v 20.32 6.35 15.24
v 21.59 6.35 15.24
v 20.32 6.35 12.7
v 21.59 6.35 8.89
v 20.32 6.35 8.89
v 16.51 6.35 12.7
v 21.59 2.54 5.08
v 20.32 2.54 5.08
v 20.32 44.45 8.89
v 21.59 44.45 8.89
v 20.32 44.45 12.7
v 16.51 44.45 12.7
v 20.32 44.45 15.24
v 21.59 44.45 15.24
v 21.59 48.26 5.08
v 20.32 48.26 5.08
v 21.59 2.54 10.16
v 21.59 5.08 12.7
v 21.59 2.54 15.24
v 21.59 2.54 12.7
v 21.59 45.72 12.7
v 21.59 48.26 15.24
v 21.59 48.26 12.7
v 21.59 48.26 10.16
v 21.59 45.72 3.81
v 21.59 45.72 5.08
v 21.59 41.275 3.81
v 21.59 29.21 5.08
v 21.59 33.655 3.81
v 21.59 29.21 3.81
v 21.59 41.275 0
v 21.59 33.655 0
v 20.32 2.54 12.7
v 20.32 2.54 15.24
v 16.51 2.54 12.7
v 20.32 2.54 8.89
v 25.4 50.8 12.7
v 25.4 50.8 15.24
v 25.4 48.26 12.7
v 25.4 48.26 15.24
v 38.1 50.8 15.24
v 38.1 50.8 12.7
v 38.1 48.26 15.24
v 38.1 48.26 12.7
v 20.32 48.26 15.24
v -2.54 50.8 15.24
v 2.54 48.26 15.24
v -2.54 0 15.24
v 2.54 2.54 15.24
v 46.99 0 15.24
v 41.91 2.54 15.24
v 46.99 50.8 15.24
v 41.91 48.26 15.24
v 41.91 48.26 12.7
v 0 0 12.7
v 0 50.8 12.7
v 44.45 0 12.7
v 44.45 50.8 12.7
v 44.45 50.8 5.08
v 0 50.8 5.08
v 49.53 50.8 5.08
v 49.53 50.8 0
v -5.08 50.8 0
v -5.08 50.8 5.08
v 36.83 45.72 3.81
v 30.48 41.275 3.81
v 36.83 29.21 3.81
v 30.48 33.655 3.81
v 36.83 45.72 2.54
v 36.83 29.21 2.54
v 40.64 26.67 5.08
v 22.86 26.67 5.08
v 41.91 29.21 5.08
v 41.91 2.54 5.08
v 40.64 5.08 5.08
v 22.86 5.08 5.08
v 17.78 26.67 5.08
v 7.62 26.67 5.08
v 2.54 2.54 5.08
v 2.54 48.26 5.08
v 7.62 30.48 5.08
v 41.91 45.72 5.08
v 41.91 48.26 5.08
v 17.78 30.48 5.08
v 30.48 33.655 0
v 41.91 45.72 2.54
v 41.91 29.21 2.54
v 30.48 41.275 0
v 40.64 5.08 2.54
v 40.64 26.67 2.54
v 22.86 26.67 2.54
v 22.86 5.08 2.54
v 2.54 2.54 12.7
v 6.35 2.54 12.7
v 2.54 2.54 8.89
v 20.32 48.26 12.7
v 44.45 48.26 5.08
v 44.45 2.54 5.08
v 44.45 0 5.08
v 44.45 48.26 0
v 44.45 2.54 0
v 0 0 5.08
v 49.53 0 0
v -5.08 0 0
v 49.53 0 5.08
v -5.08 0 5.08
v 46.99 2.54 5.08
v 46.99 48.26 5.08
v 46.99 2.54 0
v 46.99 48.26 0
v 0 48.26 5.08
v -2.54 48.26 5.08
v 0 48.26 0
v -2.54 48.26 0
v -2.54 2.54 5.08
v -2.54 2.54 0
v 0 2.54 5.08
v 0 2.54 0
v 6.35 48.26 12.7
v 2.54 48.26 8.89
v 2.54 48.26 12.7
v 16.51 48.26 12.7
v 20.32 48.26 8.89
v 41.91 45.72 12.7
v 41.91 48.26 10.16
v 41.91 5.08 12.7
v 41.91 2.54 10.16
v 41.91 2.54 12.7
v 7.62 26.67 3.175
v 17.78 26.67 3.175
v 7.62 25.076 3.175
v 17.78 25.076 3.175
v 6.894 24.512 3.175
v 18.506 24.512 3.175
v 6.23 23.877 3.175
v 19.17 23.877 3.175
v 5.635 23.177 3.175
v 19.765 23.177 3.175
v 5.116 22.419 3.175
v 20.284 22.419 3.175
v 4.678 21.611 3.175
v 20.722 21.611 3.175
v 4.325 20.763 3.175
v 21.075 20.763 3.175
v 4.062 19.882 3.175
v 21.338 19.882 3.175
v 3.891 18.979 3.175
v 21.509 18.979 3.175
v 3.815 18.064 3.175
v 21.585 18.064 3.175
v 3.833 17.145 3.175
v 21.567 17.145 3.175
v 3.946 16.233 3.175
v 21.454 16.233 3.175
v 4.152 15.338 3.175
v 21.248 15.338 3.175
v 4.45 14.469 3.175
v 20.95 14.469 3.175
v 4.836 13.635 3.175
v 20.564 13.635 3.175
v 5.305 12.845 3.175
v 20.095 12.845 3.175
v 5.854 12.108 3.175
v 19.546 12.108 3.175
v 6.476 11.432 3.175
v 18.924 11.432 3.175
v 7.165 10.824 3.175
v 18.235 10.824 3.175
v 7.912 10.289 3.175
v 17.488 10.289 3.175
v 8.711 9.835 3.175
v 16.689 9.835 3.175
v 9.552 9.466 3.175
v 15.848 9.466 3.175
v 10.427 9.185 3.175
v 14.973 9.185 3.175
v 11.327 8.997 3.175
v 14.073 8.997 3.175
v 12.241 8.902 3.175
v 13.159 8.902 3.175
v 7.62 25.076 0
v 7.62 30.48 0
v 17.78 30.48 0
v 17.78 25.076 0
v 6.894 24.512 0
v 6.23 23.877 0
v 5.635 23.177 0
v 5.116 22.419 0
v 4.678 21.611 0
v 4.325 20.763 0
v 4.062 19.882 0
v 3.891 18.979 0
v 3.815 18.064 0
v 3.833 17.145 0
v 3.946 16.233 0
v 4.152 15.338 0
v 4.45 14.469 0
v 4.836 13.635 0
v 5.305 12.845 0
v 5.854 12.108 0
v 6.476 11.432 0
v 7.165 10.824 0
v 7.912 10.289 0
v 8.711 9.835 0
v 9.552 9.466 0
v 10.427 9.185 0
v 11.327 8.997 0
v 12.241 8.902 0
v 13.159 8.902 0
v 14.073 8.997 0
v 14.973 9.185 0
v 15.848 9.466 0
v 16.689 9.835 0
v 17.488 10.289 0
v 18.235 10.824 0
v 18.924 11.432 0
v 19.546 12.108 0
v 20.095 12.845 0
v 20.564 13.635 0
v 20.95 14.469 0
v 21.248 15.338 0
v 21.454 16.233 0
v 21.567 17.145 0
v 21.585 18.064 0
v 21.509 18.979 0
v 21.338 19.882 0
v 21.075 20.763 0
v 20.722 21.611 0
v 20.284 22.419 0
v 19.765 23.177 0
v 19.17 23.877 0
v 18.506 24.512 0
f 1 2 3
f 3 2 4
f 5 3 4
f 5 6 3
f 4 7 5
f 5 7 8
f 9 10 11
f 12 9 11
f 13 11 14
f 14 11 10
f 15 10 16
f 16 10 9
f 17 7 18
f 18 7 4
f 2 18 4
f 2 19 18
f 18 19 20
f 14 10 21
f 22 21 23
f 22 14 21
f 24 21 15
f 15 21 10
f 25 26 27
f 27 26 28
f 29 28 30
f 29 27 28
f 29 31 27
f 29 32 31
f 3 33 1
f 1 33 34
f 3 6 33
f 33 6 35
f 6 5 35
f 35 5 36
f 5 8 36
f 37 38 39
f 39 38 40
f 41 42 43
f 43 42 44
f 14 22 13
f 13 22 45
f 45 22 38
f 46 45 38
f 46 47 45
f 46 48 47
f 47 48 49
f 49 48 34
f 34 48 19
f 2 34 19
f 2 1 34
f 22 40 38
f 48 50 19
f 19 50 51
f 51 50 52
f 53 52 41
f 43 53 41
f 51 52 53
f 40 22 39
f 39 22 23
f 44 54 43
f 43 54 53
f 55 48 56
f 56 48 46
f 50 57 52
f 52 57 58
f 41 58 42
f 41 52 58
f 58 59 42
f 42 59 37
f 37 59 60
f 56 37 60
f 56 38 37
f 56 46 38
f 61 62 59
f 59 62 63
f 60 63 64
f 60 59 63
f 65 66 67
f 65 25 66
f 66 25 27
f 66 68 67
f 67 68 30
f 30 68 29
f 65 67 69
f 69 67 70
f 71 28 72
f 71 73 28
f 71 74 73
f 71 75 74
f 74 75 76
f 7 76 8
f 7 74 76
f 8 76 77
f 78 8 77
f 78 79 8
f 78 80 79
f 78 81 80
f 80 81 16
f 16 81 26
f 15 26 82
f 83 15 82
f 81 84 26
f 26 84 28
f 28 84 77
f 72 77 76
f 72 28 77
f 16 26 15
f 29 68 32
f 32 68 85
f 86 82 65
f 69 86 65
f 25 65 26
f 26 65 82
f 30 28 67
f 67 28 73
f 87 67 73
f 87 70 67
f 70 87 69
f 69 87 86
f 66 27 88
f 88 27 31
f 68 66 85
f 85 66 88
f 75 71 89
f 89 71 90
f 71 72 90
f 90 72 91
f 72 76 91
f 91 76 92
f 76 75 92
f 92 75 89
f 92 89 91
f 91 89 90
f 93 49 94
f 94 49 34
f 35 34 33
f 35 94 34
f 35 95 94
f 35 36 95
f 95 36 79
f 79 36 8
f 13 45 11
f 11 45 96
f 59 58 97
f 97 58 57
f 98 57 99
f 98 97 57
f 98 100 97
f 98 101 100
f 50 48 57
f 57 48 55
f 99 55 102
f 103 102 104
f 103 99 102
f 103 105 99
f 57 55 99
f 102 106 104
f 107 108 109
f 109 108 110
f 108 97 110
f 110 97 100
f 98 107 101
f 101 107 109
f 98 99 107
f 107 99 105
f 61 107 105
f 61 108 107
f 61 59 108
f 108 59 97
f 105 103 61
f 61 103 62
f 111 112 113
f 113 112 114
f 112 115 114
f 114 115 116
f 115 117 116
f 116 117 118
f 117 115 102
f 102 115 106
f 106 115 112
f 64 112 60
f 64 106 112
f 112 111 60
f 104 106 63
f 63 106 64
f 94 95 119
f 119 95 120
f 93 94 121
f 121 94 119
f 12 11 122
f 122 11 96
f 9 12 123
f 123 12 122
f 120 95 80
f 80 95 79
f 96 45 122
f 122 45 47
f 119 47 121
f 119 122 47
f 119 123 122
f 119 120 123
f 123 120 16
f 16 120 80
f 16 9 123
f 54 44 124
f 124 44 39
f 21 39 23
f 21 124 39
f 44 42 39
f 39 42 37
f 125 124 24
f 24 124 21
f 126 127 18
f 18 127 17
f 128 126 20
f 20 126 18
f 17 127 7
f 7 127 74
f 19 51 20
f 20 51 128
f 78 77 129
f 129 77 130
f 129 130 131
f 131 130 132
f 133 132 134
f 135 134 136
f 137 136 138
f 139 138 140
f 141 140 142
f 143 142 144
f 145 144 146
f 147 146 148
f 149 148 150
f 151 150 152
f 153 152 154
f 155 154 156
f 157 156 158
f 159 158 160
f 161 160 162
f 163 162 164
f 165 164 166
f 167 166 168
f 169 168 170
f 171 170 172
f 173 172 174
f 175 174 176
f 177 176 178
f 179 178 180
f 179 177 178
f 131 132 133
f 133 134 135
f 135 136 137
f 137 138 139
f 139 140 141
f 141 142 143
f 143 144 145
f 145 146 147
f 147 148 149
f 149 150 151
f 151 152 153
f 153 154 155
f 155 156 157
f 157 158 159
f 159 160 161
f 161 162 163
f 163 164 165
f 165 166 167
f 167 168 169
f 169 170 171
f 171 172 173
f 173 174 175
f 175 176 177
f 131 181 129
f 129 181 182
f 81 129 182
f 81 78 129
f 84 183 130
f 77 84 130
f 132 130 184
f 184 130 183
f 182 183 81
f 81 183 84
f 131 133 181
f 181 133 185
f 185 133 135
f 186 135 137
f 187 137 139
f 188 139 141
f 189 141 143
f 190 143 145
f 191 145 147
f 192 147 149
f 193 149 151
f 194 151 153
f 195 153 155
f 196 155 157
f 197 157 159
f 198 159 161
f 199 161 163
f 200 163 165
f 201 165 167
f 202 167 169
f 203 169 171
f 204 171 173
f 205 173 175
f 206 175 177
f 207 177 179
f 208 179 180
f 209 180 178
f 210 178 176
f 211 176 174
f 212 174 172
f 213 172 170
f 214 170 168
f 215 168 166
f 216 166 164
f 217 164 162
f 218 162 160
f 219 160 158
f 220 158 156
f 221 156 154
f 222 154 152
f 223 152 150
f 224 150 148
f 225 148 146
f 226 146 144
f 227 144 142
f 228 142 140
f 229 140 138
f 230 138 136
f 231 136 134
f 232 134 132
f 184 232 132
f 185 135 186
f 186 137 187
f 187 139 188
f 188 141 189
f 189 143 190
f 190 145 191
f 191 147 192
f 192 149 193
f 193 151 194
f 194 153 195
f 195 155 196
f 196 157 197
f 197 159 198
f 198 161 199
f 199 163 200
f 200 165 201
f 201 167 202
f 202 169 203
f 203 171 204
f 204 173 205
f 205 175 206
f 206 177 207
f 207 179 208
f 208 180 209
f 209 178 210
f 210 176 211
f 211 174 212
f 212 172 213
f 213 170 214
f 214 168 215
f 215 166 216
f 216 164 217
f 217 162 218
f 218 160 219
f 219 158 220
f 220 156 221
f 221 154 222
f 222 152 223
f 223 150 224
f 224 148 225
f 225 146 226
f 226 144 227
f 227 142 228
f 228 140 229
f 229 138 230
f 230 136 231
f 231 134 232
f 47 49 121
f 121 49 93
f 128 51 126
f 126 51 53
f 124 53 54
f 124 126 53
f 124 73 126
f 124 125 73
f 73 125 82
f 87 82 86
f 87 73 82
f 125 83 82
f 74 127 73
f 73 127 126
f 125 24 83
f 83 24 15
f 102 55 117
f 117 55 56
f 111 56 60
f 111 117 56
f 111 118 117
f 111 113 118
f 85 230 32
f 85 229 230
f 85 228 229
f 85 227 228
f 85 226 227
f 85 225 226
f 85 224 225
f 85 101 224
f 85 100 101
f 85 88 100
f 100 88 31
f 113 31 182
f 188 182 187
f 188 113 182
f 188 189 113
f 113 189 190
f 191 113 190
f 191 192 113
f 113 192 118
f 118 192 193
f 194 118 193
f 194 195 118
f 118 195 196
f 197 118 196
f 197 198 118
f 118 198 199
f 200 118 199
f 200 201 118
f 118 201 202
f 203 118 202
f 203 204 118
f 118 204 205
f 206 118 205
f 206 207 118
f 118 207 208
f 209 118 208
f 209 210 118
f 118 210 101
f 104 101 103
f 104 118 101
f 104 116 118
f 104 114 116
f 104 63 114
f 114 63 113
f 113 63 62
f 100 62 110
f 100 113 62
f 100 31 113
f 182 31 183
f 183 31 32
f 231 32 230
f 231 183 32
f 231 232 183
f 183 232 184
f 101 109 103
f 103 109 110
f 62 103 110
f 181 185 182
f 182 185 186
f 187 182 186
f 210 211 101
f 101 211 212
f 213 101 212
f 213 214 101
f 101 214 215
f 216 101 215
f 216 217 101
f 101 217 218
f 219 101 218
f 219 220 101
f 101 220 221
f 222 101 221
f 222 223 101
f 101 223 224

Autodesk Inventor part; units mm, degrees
ref_plane "YZ Plane" through (0, 0, 0) normal (1, 0, 0) x (0, 1, 0)
ref_plane "XZ Plane" through (0, 0, 0) normal (0, 1, 0) x (-1, 0, 0)
ref_plane "XY Plane" through (0, 0, 0) normal (0, 0, 1) x (1, 0, 0)
sketch "Sketch2" plane through (0, 0, 0) normal (0, 0, 1) x (1, 0, 0)
  line L0 (0, 0) -> (44.45, 0)
  line L1 (44.45, 0) -> (44.45, 50.8)
  line L2 (44.45, 50.8) -> (0, 50.8)
  line L3 (0, 50.8) -> (0, 0)
  dimension "d0" = 50.8
  dimension "d1" = 44.45
extrude "Extrusion1" add sketch "Sketch2" along normal blind 25.4
sketch "Sketch3" plane through (0, 0, 25.4) normal (0, 0, 1) x (1, 0, 0)
  line L0 (2.54, 2.54) -> (20.32, 2.54)
  line L1 (20.32, 2.54) -> (20.32, 48.26)
  line L2 (20.32, 48.26) -> (2.54, 48.26)
  line L3 (2.54, 48.26) -> (2.54, 2.54)
  line L4 (0, 0) -> (44.45, 0) projected
  line L5 (0, 50.8) -> (0, 0) projected
  line L6 (44.45, 50.8) -> (0, 50.8) projected
  line L7 (21.59, 2.54) -> (41.91, 2.54)
  line L8 (41.91, 2.54) -> (41.91, 48.26)
  line L9 (41.91, 48.26) -> (21.59, 48.26)
  line L10 (21.59, 48.26) -> (21.59, 2.54)
  line L11 (44.45, 0) -> (44.45, 50.8) projected
  dimension "d4" = 2.54
  dimension "d5" = 2.54
  dimension "d6" = 2.54
  dimension "d7" = 20.32
  dimension "d8" = 2.54
  dimension "d9" = 2.54
  dimension "d10" = 2.54
  dimension "d11" = 22.86
extrude "Extrusion2" cut sketch "Sketch3" against normal blind 20.32 contours L3 L2 L1 L0 | L10 L9 L8 L7
sketch "Sketch4" plane through (0, 0, 0) normal (0, 0, -1) x (-1, 0, 0)
  circle A0 centre (-12.7, 17.78) radius 8.89
  line L0 (0, 50.8) -> (0, 0) projected
  line L1 (0, 0) -> (-44.45, 0) projected
  dimension "d14" = 17.78
  dimension "d17" = 12.7
  dimension "d18" = 17.78
extrude "Extrusion3" cut sketch "Sketch4" against normal blind 3.175
sketch "Sketch5" plane through (0, 0, 0) normal (0, 0, -1) x (-1, 0, 0)
  point P0 (0, 0)
sketch "Sketch6" plane through (12.7, 17.78, 3.175) normal (0, 0, -1) x (-1, 0, 0)
  circle A0 centre (0, 0) radius 8.89 projected
  line L0 (0, 0) -> (-5.08, 0)
  line L1 (-5.08, 0) -> (-5.08, 12.7)
  line L2 (-5.08, 12.7) -> (0, 12.7)
  line L3 (0, 12.7) -> (0, 0)
  line L4 (0, 0) -> (5.08, 0)
  line L5 (5.08, 0) -> (5.08, 12.7)
  line L6 (5.08, 12.7) -> (0, 12.7)
  line L7 (0, 12.7) -> (0, 0)
  point P0 (12.7, -17.78)
  dimension "d21" = 12.7
  dimension "d22" = 5.08
  dimension "d23" = 5.08
extrude "Extrusion4" cut sketch "Sketch6" along normal blind 5.08 contours L5 L4 L3 A0 | A0 L3 L6 L5 | L1 L2 L3 A0 | A0 L3 L0 L1
sketch "Sketch7" plane through (0, 0, 3.175) normal (0, 0, -1) x (-1, 0, 0)
  point P0 (0, 0)
sketch "Sketch8" plane through (0, 0, 3.175) normal (0, 0, -1) x (-1, 0, 0)
  line L0 (-7.62, 25.0756) -> (-7.62, 30.48) projected
  line L1 (-17.78, 30.48) -> (-7.62, 30.48)
  line L2 (-7.62, 30.48) -> (-7.62, 26.67)
  line L3 (-7.62, 26.67) -> (-17.78, 26.67)
  line L4 (-17.78, 26.67) -> (-17.78, 30.48)
  point P0 (0, 0)
  dimension "d26" = 3.81
extrude "Extrusion5" cut sketch "Sketch8" against normal blind 2.54
sketch "Sketch14" plane through (41.91, 2.54, 25.4) normal (-1, 0, 0) x (0, 0, 1)
  line L0 (0, 0) -> (-20.32, 0) projected
  line L1 (0, 45.72) -> (-20.32, 45.72) projected
  line L2 (-12.7, 45.72) -> (-12.7, 43.18)
  line L3 (-12.7, 43.18) -> (-15.24, 45.72)
  line L4 (-12.7, 0) -> (-12.7, 2.54)
  line L5 (-12.7, 2.54) -> (-15.24, 0)
  point P0 (-25.4, -2.54)
  dimension "d52" = 45
  dimension "d53" = 2.54
  dimension "d54" = 2.54
  dimension "d55" = 45
  dimension "d56" = 5.08
  dimension "d57" = 5.08
extrude "Arduino Holder" add sketch "Sketch14" along normal blind 20.32
sketch "Sketch16" plane through (2.54, 2.54, 25.4) normal (0, 1, 0) x (1, 0, 0)
  line L0 (0, 12.7) -> (3.81, 12.7)
  line L1 (3.81, 12.7) -> (0, 16.51)
  line L2 (0, 0) -> (0, 20.32) projected
  line L3 (17.78, 5.08) -> (17.78, 20.32)
  line L4 (17.78, 16.51) -> (13.97, 12.7)
  line L5 (13.97, 12.7) -> (17.78, 12.7)
  line L6 (17.78, 20.32) -> (0, 20.32) projected
  point P0 (-2.54, 25.4)
  dimension "d60" = 45
  dimension "d61" = 3.81
  dimension "d62" = 3.81
  dimension "d64" = 45
  dimension "d144" = 7.62
  dimension "d145" = 7.62
extrude "Bluetooth Holder" add sketch "Sketch16" along normal blind 45.72
sketch "Sketch17" plane through (0, 0, 0) normal (-1, 0, 0) x (0, 0, 1)
  line L0 (0, 50.8) -> (25.4, 50.8) projected
  line L1 (0, 0) -> (5.08, 0)
  line L2 (5.08, 0) -> (5.08, 50.8)
  line L3 (5.08, 50.8) -> (0, 50.8)
  line L4 (0, 50.8) -> (0, 0)
  dimension "d68" = 5.08
extrude "Extrusion13" add sketch "Sketch17" along normal blind 5.08
sketch "Sketch18" plane through (0, 0, 5.08) normal (0, 0, 1) x (1, 0, 0)
  line L0 (0, 50.8) -> (0, 0) projected
  line L1 (0, 2.54) -> (-2.54, 2.54)
  line L2 (-2.54, 2.54) -> (-2.54, 48.26)
  line L3 (-2.54, 48.26) -> (0, 48.26)
  line L4 (0, 48.26) -> (0, 2.54)
  line L5 (0, 50.8) -> (-5.08, 50.8) projected
  line L6 (0, 0) -> (-5.08, 0) projected
  dimension "d71" = 2.54
  dimension "d72" = 2.54
  dimension "d73" = 2.54
extrude "Extrusion14" cut sketch "Sketch18" against normal blind 5.08
sketch "Sketch19" plane through (44.45, 0, 0) normal (1, 0, 0) x (0, 0, -1)
  line L0 (0, 50.8) -> (-25.4, 50.8) projected
  line L1 (0, 0) -> (-5.08, 0)
  line L2 (-5.08, 0) -> (-5.08, 50.8)
  line L3 (-5.08, 50.8) -> (0, 50.8)
  line L4 (0, 50.8) -> (0, 0)
  dimension "d76" = 5.08
extrude "Extrusion15" add sketch "Sketch19" along normal blind 5.08
sketch "Sketch21" plane through (44.45, 0, 5.08) normal (0, 0, 1) x (1, 0, 0)
  line L0 (0, 0) -> (0, 50.8) projected
  line L1 (0, 2.54) -> (2.54, 2.54)
  line L2 (2.54, 2.54) -> (2.54, 48.26)
  line L3 (2.54, 48.26) -> (0, 48.26)
  line L4 (0, 48.26) -> (0, 2.54)
  line L5 (0, 50.8) -> (5.08, 50.8) projected
  line L6 (0, 0) -> (5.08, 0) projected
  line L7 (5.08, 50.8) -> (5.08, 0) projected
  point P0 (-44.45, 0)
  dimension "d79" = 2.54
  dimension "d81" = 2.54
  dimension "d82" = 2.54
extrude "Extrusion16" cut sketch "Sketch21" against normal blind 5.08 contours L0 L3 L2 L1
sketch "Sketch28" plane through (0, 0, 25.4) normal (-1, 0, 0) x (0, 0, 1)
  line L0 (-20.32, 0) -> (0, 0) projected
  line L1 (0, 50.8) -> (-10.16, 50.8)
  line L2 (-10.16, 50.8) -> (-10.16, 0)
  line L3 (-10.16, 0) -> (0, 0)
  line L4 (0, 0) -> (0, 50.8)
  point P0 (-25.4, 0)
  dimension "d141" = 10.16
extrude "Height Reduce" cut sketch "Sketch28" against normal blind 48.26
sketch "Sketch30" plane through (0, 0, 5.08) normal (0, 0, 1) x (1, 0, 0)
  line L0 (22.86, 5.08) -> (40.64, 5.08)
  line L1 (40.64, 5.08) -> (40.64, 26.67)
  line L2 (40.64, 26.67) -> (22.86, 26.67)
  line L3 (22.86, 26.67) -> (22.86, 5.08)
  line L4 (21.59, 2.54) -> (21.59, 48.26) projected
  line L5 (41.91, 48.26) -> (41.91, 2.54) projected
  line L6 (41.91, 2.54) -> (21.59, 2.54) projected
  point P0 (0, 0)
  point P1 (24.13, 12.7)
  point P2 (44.45, 30.48)
  dimension "d146" = 1.27
  dimension "d147" = 1.27
  dimension "d148" = 21.59
  dimension "d149" = 2.54
  dimension "d150" = 17.78
extrude "Extrusion27" cut sketch "Sketch30" against normal blind 2.54
sketch "Sketch31" plane through (0, 0, 5.08) normal (0, 0, 1) x (1, 0, 0)
  line L0 (21.59, 2.54) -> (21.59, 48.26) projected
  line L1 (41.91, 48.26) -> (41.91, 2.54) projected
  line L2 (21.59, 45.72) -> (41.91, 45.72)
  line L3 (41.91, 45.72) -> (41.91, 29.21)
  line L4 (41.91, 29.21) -> (21.59, 29.21)
  line L5 (21.59, 29.21) -> (21.59, 45.72)
  line L6 (21.59, 48.26) -> (41.91, 48.26) projected
  line L7 (21.59, 41.275) -> (30.48, 41.275)
  line L8 (30.48, 41.275) -> (30.48, 33.655)
  line L9 (30.48, 33.655) -> (21.59, 33.655)
  line L10 (21.59, 33.655) -> (21.59, 41.275)
  line L11 (41.91, 45.72) -> (36.83, 45.72)
  line L12 (36.83, 45.72) -> (36.83, 29.21)
  line L13 (36.83, 29.21) -> (41.91, 29.21)
  line L14 (41.91, 29.21) -> (41.91, 45.72)
  point P0 (0, 0)
  point P1 (24.13, 33.02)
  dimension "d157" = 2.54
  dimension "d158" = 16.51
  dimension "d159" = 4.445
  dimension "d160" = 7.62
  dimension "d161" = 8.89
  dimension "d162" = 4.445
  dimension "d163" = 5.08
extrude "Extrusion28" cut sketch "Sketch31" against normal blind 25.4 contours L0 L7 L8 L9
extrude "Extrusion29" cut sketch "Sketch31" against normal blind 2.54 contours L12 L2 L1 L4
extrude "Extrusion30" cut sketch "Sketch31" against normal blind 1.27 contours L0 L9 L8 L7 L2 L12 L4
sketch "Sketch33" plane through (44.45, 2.54, 0) normal (1, 0, 0) x (0, 0, -1)
  line L0 (-5.08, 48.26) -> (-15.24, 48.26) projected
  line L1 (-15.24, -2.54) -> (-12.7, -2.54)
  line L2 (-12.7, -2.54) -> (-12.7, 48.26)
  line L3 (-12.7, 48.26) -> (-15.24, 48.26)
  line L4 (-15.24, 48.26) -> (-15.24, -2.54)
  point P0 (0, -2.54)
  dimension "d194" = 2.54
extrude "Extrusion33" add sketch "Sketch33" along normal blind 2.54
sketch "Sketch35" plane through (0, 2.54, 0) normal (-1, 0, 0) x (0, 0, 1)
  line L0 (5.08, 48.26) -> (15.24, 48.26) projected
  line L1 (15.24, -2.54) -> (12.7, -2.54)
  line L2 (12.7, -2.54) -> (12.7, 48.26)
  line L3 (12.7, 48.26) -> (15.24, 48.26)
  line L4 (15.24, 48.26) -> (15.24, -2.54)
  point P0 (0, -2.54)
  dimension "d197" = 2.54
extrude "Extrusion34" add sketch "Sketch35" along normal blind 2.54
sketch "Sketch36" plane through (-5.08, 0, 5.08) normal (0, -1, 0) x (1, 0, 0)
  line L0 (2.54, 10.16) -> (5.08, 7.62)
  line L1 (5.08, 7.62) -> (2.54, 7.62)
  line L2 (5.08, 7.62) -> (2.54, 7.62) projected
  line L3 (2.54, 7.62) -> (2.54, 10.16)
  line L4 (49.53, 7.62) -> (52.07, 10.16)
  line L5 (52.07, 10.16) -> (52.07, 7.62)
  line L6 (52.07, 7.62) -> (49.53, 7.62)
  point P0 (5.08, -5.08)
extrude "Extrusion35" cut sketch "Sketch36" against normal blind 50.8
sketch "Sketch37" plane through (-5.08, 50.8, 5.08) normal (0, 1, 0) x (1, 0, 0)
  line L0 (52.07, -10.16) -> (2.54, -10.16) projected
  line L1 (43.18, -10.16) -> (30.48, -10.16)
  line L2 (30.48, -10.16) -> (30.48, -7.62)
  line L3 (30.48, -7.62) -> (43.18, -7.62)
  line L4 (43.18, -7.62) -> (43.18, -10.16)
  line L5 (26.67, -10.16) -> (26.67, -7.62) projected
  line L6 (46.99, -10.16) -> (46.99, -7.62) projected
  point P0 (5.08, 5.08)
  dimension "d202" = 2.54
  dimension "d203" = 12.7
  dimension "d204" = 3.81
  dimension "d205" = 3.81
extrude "USB hole" cut sketch "Sketch37" against normal blind 2.54
sketch "Sketch38" plane through (20.32, 2.54, 5.08) normal (-1, 0, 0) x (0, 0, 1)
  line L0 (0, 0) -> (3.81, 3.81)
  line L1 (3.81, 3.81) -> (3.81, 41.91)
  line L2 (3.81, 41.91) -> (0, 45.72)
  line L3 (0, 45.72) -> (0, 0)
  line L4 (3.81, 3.81) -> (10.16, 3.81)
  line L5 (10.16, 3.81) -> (10.16, 41.91)
  line L6 (10.16, 0) -> (10.16, 45.72) projected
  line L7 (10.16, 41.91) -> (3.81, 41.91)
  point P0 (-5.08, -2.54)
  dimension "d209" = 3.81
  dimension "d210" = 135
  dimension "d211" = 135
extrude "Center column remove" cut sketch "Sketch38" along normal mid plane 7.62
properties part number "nano_enclosure_v3"
